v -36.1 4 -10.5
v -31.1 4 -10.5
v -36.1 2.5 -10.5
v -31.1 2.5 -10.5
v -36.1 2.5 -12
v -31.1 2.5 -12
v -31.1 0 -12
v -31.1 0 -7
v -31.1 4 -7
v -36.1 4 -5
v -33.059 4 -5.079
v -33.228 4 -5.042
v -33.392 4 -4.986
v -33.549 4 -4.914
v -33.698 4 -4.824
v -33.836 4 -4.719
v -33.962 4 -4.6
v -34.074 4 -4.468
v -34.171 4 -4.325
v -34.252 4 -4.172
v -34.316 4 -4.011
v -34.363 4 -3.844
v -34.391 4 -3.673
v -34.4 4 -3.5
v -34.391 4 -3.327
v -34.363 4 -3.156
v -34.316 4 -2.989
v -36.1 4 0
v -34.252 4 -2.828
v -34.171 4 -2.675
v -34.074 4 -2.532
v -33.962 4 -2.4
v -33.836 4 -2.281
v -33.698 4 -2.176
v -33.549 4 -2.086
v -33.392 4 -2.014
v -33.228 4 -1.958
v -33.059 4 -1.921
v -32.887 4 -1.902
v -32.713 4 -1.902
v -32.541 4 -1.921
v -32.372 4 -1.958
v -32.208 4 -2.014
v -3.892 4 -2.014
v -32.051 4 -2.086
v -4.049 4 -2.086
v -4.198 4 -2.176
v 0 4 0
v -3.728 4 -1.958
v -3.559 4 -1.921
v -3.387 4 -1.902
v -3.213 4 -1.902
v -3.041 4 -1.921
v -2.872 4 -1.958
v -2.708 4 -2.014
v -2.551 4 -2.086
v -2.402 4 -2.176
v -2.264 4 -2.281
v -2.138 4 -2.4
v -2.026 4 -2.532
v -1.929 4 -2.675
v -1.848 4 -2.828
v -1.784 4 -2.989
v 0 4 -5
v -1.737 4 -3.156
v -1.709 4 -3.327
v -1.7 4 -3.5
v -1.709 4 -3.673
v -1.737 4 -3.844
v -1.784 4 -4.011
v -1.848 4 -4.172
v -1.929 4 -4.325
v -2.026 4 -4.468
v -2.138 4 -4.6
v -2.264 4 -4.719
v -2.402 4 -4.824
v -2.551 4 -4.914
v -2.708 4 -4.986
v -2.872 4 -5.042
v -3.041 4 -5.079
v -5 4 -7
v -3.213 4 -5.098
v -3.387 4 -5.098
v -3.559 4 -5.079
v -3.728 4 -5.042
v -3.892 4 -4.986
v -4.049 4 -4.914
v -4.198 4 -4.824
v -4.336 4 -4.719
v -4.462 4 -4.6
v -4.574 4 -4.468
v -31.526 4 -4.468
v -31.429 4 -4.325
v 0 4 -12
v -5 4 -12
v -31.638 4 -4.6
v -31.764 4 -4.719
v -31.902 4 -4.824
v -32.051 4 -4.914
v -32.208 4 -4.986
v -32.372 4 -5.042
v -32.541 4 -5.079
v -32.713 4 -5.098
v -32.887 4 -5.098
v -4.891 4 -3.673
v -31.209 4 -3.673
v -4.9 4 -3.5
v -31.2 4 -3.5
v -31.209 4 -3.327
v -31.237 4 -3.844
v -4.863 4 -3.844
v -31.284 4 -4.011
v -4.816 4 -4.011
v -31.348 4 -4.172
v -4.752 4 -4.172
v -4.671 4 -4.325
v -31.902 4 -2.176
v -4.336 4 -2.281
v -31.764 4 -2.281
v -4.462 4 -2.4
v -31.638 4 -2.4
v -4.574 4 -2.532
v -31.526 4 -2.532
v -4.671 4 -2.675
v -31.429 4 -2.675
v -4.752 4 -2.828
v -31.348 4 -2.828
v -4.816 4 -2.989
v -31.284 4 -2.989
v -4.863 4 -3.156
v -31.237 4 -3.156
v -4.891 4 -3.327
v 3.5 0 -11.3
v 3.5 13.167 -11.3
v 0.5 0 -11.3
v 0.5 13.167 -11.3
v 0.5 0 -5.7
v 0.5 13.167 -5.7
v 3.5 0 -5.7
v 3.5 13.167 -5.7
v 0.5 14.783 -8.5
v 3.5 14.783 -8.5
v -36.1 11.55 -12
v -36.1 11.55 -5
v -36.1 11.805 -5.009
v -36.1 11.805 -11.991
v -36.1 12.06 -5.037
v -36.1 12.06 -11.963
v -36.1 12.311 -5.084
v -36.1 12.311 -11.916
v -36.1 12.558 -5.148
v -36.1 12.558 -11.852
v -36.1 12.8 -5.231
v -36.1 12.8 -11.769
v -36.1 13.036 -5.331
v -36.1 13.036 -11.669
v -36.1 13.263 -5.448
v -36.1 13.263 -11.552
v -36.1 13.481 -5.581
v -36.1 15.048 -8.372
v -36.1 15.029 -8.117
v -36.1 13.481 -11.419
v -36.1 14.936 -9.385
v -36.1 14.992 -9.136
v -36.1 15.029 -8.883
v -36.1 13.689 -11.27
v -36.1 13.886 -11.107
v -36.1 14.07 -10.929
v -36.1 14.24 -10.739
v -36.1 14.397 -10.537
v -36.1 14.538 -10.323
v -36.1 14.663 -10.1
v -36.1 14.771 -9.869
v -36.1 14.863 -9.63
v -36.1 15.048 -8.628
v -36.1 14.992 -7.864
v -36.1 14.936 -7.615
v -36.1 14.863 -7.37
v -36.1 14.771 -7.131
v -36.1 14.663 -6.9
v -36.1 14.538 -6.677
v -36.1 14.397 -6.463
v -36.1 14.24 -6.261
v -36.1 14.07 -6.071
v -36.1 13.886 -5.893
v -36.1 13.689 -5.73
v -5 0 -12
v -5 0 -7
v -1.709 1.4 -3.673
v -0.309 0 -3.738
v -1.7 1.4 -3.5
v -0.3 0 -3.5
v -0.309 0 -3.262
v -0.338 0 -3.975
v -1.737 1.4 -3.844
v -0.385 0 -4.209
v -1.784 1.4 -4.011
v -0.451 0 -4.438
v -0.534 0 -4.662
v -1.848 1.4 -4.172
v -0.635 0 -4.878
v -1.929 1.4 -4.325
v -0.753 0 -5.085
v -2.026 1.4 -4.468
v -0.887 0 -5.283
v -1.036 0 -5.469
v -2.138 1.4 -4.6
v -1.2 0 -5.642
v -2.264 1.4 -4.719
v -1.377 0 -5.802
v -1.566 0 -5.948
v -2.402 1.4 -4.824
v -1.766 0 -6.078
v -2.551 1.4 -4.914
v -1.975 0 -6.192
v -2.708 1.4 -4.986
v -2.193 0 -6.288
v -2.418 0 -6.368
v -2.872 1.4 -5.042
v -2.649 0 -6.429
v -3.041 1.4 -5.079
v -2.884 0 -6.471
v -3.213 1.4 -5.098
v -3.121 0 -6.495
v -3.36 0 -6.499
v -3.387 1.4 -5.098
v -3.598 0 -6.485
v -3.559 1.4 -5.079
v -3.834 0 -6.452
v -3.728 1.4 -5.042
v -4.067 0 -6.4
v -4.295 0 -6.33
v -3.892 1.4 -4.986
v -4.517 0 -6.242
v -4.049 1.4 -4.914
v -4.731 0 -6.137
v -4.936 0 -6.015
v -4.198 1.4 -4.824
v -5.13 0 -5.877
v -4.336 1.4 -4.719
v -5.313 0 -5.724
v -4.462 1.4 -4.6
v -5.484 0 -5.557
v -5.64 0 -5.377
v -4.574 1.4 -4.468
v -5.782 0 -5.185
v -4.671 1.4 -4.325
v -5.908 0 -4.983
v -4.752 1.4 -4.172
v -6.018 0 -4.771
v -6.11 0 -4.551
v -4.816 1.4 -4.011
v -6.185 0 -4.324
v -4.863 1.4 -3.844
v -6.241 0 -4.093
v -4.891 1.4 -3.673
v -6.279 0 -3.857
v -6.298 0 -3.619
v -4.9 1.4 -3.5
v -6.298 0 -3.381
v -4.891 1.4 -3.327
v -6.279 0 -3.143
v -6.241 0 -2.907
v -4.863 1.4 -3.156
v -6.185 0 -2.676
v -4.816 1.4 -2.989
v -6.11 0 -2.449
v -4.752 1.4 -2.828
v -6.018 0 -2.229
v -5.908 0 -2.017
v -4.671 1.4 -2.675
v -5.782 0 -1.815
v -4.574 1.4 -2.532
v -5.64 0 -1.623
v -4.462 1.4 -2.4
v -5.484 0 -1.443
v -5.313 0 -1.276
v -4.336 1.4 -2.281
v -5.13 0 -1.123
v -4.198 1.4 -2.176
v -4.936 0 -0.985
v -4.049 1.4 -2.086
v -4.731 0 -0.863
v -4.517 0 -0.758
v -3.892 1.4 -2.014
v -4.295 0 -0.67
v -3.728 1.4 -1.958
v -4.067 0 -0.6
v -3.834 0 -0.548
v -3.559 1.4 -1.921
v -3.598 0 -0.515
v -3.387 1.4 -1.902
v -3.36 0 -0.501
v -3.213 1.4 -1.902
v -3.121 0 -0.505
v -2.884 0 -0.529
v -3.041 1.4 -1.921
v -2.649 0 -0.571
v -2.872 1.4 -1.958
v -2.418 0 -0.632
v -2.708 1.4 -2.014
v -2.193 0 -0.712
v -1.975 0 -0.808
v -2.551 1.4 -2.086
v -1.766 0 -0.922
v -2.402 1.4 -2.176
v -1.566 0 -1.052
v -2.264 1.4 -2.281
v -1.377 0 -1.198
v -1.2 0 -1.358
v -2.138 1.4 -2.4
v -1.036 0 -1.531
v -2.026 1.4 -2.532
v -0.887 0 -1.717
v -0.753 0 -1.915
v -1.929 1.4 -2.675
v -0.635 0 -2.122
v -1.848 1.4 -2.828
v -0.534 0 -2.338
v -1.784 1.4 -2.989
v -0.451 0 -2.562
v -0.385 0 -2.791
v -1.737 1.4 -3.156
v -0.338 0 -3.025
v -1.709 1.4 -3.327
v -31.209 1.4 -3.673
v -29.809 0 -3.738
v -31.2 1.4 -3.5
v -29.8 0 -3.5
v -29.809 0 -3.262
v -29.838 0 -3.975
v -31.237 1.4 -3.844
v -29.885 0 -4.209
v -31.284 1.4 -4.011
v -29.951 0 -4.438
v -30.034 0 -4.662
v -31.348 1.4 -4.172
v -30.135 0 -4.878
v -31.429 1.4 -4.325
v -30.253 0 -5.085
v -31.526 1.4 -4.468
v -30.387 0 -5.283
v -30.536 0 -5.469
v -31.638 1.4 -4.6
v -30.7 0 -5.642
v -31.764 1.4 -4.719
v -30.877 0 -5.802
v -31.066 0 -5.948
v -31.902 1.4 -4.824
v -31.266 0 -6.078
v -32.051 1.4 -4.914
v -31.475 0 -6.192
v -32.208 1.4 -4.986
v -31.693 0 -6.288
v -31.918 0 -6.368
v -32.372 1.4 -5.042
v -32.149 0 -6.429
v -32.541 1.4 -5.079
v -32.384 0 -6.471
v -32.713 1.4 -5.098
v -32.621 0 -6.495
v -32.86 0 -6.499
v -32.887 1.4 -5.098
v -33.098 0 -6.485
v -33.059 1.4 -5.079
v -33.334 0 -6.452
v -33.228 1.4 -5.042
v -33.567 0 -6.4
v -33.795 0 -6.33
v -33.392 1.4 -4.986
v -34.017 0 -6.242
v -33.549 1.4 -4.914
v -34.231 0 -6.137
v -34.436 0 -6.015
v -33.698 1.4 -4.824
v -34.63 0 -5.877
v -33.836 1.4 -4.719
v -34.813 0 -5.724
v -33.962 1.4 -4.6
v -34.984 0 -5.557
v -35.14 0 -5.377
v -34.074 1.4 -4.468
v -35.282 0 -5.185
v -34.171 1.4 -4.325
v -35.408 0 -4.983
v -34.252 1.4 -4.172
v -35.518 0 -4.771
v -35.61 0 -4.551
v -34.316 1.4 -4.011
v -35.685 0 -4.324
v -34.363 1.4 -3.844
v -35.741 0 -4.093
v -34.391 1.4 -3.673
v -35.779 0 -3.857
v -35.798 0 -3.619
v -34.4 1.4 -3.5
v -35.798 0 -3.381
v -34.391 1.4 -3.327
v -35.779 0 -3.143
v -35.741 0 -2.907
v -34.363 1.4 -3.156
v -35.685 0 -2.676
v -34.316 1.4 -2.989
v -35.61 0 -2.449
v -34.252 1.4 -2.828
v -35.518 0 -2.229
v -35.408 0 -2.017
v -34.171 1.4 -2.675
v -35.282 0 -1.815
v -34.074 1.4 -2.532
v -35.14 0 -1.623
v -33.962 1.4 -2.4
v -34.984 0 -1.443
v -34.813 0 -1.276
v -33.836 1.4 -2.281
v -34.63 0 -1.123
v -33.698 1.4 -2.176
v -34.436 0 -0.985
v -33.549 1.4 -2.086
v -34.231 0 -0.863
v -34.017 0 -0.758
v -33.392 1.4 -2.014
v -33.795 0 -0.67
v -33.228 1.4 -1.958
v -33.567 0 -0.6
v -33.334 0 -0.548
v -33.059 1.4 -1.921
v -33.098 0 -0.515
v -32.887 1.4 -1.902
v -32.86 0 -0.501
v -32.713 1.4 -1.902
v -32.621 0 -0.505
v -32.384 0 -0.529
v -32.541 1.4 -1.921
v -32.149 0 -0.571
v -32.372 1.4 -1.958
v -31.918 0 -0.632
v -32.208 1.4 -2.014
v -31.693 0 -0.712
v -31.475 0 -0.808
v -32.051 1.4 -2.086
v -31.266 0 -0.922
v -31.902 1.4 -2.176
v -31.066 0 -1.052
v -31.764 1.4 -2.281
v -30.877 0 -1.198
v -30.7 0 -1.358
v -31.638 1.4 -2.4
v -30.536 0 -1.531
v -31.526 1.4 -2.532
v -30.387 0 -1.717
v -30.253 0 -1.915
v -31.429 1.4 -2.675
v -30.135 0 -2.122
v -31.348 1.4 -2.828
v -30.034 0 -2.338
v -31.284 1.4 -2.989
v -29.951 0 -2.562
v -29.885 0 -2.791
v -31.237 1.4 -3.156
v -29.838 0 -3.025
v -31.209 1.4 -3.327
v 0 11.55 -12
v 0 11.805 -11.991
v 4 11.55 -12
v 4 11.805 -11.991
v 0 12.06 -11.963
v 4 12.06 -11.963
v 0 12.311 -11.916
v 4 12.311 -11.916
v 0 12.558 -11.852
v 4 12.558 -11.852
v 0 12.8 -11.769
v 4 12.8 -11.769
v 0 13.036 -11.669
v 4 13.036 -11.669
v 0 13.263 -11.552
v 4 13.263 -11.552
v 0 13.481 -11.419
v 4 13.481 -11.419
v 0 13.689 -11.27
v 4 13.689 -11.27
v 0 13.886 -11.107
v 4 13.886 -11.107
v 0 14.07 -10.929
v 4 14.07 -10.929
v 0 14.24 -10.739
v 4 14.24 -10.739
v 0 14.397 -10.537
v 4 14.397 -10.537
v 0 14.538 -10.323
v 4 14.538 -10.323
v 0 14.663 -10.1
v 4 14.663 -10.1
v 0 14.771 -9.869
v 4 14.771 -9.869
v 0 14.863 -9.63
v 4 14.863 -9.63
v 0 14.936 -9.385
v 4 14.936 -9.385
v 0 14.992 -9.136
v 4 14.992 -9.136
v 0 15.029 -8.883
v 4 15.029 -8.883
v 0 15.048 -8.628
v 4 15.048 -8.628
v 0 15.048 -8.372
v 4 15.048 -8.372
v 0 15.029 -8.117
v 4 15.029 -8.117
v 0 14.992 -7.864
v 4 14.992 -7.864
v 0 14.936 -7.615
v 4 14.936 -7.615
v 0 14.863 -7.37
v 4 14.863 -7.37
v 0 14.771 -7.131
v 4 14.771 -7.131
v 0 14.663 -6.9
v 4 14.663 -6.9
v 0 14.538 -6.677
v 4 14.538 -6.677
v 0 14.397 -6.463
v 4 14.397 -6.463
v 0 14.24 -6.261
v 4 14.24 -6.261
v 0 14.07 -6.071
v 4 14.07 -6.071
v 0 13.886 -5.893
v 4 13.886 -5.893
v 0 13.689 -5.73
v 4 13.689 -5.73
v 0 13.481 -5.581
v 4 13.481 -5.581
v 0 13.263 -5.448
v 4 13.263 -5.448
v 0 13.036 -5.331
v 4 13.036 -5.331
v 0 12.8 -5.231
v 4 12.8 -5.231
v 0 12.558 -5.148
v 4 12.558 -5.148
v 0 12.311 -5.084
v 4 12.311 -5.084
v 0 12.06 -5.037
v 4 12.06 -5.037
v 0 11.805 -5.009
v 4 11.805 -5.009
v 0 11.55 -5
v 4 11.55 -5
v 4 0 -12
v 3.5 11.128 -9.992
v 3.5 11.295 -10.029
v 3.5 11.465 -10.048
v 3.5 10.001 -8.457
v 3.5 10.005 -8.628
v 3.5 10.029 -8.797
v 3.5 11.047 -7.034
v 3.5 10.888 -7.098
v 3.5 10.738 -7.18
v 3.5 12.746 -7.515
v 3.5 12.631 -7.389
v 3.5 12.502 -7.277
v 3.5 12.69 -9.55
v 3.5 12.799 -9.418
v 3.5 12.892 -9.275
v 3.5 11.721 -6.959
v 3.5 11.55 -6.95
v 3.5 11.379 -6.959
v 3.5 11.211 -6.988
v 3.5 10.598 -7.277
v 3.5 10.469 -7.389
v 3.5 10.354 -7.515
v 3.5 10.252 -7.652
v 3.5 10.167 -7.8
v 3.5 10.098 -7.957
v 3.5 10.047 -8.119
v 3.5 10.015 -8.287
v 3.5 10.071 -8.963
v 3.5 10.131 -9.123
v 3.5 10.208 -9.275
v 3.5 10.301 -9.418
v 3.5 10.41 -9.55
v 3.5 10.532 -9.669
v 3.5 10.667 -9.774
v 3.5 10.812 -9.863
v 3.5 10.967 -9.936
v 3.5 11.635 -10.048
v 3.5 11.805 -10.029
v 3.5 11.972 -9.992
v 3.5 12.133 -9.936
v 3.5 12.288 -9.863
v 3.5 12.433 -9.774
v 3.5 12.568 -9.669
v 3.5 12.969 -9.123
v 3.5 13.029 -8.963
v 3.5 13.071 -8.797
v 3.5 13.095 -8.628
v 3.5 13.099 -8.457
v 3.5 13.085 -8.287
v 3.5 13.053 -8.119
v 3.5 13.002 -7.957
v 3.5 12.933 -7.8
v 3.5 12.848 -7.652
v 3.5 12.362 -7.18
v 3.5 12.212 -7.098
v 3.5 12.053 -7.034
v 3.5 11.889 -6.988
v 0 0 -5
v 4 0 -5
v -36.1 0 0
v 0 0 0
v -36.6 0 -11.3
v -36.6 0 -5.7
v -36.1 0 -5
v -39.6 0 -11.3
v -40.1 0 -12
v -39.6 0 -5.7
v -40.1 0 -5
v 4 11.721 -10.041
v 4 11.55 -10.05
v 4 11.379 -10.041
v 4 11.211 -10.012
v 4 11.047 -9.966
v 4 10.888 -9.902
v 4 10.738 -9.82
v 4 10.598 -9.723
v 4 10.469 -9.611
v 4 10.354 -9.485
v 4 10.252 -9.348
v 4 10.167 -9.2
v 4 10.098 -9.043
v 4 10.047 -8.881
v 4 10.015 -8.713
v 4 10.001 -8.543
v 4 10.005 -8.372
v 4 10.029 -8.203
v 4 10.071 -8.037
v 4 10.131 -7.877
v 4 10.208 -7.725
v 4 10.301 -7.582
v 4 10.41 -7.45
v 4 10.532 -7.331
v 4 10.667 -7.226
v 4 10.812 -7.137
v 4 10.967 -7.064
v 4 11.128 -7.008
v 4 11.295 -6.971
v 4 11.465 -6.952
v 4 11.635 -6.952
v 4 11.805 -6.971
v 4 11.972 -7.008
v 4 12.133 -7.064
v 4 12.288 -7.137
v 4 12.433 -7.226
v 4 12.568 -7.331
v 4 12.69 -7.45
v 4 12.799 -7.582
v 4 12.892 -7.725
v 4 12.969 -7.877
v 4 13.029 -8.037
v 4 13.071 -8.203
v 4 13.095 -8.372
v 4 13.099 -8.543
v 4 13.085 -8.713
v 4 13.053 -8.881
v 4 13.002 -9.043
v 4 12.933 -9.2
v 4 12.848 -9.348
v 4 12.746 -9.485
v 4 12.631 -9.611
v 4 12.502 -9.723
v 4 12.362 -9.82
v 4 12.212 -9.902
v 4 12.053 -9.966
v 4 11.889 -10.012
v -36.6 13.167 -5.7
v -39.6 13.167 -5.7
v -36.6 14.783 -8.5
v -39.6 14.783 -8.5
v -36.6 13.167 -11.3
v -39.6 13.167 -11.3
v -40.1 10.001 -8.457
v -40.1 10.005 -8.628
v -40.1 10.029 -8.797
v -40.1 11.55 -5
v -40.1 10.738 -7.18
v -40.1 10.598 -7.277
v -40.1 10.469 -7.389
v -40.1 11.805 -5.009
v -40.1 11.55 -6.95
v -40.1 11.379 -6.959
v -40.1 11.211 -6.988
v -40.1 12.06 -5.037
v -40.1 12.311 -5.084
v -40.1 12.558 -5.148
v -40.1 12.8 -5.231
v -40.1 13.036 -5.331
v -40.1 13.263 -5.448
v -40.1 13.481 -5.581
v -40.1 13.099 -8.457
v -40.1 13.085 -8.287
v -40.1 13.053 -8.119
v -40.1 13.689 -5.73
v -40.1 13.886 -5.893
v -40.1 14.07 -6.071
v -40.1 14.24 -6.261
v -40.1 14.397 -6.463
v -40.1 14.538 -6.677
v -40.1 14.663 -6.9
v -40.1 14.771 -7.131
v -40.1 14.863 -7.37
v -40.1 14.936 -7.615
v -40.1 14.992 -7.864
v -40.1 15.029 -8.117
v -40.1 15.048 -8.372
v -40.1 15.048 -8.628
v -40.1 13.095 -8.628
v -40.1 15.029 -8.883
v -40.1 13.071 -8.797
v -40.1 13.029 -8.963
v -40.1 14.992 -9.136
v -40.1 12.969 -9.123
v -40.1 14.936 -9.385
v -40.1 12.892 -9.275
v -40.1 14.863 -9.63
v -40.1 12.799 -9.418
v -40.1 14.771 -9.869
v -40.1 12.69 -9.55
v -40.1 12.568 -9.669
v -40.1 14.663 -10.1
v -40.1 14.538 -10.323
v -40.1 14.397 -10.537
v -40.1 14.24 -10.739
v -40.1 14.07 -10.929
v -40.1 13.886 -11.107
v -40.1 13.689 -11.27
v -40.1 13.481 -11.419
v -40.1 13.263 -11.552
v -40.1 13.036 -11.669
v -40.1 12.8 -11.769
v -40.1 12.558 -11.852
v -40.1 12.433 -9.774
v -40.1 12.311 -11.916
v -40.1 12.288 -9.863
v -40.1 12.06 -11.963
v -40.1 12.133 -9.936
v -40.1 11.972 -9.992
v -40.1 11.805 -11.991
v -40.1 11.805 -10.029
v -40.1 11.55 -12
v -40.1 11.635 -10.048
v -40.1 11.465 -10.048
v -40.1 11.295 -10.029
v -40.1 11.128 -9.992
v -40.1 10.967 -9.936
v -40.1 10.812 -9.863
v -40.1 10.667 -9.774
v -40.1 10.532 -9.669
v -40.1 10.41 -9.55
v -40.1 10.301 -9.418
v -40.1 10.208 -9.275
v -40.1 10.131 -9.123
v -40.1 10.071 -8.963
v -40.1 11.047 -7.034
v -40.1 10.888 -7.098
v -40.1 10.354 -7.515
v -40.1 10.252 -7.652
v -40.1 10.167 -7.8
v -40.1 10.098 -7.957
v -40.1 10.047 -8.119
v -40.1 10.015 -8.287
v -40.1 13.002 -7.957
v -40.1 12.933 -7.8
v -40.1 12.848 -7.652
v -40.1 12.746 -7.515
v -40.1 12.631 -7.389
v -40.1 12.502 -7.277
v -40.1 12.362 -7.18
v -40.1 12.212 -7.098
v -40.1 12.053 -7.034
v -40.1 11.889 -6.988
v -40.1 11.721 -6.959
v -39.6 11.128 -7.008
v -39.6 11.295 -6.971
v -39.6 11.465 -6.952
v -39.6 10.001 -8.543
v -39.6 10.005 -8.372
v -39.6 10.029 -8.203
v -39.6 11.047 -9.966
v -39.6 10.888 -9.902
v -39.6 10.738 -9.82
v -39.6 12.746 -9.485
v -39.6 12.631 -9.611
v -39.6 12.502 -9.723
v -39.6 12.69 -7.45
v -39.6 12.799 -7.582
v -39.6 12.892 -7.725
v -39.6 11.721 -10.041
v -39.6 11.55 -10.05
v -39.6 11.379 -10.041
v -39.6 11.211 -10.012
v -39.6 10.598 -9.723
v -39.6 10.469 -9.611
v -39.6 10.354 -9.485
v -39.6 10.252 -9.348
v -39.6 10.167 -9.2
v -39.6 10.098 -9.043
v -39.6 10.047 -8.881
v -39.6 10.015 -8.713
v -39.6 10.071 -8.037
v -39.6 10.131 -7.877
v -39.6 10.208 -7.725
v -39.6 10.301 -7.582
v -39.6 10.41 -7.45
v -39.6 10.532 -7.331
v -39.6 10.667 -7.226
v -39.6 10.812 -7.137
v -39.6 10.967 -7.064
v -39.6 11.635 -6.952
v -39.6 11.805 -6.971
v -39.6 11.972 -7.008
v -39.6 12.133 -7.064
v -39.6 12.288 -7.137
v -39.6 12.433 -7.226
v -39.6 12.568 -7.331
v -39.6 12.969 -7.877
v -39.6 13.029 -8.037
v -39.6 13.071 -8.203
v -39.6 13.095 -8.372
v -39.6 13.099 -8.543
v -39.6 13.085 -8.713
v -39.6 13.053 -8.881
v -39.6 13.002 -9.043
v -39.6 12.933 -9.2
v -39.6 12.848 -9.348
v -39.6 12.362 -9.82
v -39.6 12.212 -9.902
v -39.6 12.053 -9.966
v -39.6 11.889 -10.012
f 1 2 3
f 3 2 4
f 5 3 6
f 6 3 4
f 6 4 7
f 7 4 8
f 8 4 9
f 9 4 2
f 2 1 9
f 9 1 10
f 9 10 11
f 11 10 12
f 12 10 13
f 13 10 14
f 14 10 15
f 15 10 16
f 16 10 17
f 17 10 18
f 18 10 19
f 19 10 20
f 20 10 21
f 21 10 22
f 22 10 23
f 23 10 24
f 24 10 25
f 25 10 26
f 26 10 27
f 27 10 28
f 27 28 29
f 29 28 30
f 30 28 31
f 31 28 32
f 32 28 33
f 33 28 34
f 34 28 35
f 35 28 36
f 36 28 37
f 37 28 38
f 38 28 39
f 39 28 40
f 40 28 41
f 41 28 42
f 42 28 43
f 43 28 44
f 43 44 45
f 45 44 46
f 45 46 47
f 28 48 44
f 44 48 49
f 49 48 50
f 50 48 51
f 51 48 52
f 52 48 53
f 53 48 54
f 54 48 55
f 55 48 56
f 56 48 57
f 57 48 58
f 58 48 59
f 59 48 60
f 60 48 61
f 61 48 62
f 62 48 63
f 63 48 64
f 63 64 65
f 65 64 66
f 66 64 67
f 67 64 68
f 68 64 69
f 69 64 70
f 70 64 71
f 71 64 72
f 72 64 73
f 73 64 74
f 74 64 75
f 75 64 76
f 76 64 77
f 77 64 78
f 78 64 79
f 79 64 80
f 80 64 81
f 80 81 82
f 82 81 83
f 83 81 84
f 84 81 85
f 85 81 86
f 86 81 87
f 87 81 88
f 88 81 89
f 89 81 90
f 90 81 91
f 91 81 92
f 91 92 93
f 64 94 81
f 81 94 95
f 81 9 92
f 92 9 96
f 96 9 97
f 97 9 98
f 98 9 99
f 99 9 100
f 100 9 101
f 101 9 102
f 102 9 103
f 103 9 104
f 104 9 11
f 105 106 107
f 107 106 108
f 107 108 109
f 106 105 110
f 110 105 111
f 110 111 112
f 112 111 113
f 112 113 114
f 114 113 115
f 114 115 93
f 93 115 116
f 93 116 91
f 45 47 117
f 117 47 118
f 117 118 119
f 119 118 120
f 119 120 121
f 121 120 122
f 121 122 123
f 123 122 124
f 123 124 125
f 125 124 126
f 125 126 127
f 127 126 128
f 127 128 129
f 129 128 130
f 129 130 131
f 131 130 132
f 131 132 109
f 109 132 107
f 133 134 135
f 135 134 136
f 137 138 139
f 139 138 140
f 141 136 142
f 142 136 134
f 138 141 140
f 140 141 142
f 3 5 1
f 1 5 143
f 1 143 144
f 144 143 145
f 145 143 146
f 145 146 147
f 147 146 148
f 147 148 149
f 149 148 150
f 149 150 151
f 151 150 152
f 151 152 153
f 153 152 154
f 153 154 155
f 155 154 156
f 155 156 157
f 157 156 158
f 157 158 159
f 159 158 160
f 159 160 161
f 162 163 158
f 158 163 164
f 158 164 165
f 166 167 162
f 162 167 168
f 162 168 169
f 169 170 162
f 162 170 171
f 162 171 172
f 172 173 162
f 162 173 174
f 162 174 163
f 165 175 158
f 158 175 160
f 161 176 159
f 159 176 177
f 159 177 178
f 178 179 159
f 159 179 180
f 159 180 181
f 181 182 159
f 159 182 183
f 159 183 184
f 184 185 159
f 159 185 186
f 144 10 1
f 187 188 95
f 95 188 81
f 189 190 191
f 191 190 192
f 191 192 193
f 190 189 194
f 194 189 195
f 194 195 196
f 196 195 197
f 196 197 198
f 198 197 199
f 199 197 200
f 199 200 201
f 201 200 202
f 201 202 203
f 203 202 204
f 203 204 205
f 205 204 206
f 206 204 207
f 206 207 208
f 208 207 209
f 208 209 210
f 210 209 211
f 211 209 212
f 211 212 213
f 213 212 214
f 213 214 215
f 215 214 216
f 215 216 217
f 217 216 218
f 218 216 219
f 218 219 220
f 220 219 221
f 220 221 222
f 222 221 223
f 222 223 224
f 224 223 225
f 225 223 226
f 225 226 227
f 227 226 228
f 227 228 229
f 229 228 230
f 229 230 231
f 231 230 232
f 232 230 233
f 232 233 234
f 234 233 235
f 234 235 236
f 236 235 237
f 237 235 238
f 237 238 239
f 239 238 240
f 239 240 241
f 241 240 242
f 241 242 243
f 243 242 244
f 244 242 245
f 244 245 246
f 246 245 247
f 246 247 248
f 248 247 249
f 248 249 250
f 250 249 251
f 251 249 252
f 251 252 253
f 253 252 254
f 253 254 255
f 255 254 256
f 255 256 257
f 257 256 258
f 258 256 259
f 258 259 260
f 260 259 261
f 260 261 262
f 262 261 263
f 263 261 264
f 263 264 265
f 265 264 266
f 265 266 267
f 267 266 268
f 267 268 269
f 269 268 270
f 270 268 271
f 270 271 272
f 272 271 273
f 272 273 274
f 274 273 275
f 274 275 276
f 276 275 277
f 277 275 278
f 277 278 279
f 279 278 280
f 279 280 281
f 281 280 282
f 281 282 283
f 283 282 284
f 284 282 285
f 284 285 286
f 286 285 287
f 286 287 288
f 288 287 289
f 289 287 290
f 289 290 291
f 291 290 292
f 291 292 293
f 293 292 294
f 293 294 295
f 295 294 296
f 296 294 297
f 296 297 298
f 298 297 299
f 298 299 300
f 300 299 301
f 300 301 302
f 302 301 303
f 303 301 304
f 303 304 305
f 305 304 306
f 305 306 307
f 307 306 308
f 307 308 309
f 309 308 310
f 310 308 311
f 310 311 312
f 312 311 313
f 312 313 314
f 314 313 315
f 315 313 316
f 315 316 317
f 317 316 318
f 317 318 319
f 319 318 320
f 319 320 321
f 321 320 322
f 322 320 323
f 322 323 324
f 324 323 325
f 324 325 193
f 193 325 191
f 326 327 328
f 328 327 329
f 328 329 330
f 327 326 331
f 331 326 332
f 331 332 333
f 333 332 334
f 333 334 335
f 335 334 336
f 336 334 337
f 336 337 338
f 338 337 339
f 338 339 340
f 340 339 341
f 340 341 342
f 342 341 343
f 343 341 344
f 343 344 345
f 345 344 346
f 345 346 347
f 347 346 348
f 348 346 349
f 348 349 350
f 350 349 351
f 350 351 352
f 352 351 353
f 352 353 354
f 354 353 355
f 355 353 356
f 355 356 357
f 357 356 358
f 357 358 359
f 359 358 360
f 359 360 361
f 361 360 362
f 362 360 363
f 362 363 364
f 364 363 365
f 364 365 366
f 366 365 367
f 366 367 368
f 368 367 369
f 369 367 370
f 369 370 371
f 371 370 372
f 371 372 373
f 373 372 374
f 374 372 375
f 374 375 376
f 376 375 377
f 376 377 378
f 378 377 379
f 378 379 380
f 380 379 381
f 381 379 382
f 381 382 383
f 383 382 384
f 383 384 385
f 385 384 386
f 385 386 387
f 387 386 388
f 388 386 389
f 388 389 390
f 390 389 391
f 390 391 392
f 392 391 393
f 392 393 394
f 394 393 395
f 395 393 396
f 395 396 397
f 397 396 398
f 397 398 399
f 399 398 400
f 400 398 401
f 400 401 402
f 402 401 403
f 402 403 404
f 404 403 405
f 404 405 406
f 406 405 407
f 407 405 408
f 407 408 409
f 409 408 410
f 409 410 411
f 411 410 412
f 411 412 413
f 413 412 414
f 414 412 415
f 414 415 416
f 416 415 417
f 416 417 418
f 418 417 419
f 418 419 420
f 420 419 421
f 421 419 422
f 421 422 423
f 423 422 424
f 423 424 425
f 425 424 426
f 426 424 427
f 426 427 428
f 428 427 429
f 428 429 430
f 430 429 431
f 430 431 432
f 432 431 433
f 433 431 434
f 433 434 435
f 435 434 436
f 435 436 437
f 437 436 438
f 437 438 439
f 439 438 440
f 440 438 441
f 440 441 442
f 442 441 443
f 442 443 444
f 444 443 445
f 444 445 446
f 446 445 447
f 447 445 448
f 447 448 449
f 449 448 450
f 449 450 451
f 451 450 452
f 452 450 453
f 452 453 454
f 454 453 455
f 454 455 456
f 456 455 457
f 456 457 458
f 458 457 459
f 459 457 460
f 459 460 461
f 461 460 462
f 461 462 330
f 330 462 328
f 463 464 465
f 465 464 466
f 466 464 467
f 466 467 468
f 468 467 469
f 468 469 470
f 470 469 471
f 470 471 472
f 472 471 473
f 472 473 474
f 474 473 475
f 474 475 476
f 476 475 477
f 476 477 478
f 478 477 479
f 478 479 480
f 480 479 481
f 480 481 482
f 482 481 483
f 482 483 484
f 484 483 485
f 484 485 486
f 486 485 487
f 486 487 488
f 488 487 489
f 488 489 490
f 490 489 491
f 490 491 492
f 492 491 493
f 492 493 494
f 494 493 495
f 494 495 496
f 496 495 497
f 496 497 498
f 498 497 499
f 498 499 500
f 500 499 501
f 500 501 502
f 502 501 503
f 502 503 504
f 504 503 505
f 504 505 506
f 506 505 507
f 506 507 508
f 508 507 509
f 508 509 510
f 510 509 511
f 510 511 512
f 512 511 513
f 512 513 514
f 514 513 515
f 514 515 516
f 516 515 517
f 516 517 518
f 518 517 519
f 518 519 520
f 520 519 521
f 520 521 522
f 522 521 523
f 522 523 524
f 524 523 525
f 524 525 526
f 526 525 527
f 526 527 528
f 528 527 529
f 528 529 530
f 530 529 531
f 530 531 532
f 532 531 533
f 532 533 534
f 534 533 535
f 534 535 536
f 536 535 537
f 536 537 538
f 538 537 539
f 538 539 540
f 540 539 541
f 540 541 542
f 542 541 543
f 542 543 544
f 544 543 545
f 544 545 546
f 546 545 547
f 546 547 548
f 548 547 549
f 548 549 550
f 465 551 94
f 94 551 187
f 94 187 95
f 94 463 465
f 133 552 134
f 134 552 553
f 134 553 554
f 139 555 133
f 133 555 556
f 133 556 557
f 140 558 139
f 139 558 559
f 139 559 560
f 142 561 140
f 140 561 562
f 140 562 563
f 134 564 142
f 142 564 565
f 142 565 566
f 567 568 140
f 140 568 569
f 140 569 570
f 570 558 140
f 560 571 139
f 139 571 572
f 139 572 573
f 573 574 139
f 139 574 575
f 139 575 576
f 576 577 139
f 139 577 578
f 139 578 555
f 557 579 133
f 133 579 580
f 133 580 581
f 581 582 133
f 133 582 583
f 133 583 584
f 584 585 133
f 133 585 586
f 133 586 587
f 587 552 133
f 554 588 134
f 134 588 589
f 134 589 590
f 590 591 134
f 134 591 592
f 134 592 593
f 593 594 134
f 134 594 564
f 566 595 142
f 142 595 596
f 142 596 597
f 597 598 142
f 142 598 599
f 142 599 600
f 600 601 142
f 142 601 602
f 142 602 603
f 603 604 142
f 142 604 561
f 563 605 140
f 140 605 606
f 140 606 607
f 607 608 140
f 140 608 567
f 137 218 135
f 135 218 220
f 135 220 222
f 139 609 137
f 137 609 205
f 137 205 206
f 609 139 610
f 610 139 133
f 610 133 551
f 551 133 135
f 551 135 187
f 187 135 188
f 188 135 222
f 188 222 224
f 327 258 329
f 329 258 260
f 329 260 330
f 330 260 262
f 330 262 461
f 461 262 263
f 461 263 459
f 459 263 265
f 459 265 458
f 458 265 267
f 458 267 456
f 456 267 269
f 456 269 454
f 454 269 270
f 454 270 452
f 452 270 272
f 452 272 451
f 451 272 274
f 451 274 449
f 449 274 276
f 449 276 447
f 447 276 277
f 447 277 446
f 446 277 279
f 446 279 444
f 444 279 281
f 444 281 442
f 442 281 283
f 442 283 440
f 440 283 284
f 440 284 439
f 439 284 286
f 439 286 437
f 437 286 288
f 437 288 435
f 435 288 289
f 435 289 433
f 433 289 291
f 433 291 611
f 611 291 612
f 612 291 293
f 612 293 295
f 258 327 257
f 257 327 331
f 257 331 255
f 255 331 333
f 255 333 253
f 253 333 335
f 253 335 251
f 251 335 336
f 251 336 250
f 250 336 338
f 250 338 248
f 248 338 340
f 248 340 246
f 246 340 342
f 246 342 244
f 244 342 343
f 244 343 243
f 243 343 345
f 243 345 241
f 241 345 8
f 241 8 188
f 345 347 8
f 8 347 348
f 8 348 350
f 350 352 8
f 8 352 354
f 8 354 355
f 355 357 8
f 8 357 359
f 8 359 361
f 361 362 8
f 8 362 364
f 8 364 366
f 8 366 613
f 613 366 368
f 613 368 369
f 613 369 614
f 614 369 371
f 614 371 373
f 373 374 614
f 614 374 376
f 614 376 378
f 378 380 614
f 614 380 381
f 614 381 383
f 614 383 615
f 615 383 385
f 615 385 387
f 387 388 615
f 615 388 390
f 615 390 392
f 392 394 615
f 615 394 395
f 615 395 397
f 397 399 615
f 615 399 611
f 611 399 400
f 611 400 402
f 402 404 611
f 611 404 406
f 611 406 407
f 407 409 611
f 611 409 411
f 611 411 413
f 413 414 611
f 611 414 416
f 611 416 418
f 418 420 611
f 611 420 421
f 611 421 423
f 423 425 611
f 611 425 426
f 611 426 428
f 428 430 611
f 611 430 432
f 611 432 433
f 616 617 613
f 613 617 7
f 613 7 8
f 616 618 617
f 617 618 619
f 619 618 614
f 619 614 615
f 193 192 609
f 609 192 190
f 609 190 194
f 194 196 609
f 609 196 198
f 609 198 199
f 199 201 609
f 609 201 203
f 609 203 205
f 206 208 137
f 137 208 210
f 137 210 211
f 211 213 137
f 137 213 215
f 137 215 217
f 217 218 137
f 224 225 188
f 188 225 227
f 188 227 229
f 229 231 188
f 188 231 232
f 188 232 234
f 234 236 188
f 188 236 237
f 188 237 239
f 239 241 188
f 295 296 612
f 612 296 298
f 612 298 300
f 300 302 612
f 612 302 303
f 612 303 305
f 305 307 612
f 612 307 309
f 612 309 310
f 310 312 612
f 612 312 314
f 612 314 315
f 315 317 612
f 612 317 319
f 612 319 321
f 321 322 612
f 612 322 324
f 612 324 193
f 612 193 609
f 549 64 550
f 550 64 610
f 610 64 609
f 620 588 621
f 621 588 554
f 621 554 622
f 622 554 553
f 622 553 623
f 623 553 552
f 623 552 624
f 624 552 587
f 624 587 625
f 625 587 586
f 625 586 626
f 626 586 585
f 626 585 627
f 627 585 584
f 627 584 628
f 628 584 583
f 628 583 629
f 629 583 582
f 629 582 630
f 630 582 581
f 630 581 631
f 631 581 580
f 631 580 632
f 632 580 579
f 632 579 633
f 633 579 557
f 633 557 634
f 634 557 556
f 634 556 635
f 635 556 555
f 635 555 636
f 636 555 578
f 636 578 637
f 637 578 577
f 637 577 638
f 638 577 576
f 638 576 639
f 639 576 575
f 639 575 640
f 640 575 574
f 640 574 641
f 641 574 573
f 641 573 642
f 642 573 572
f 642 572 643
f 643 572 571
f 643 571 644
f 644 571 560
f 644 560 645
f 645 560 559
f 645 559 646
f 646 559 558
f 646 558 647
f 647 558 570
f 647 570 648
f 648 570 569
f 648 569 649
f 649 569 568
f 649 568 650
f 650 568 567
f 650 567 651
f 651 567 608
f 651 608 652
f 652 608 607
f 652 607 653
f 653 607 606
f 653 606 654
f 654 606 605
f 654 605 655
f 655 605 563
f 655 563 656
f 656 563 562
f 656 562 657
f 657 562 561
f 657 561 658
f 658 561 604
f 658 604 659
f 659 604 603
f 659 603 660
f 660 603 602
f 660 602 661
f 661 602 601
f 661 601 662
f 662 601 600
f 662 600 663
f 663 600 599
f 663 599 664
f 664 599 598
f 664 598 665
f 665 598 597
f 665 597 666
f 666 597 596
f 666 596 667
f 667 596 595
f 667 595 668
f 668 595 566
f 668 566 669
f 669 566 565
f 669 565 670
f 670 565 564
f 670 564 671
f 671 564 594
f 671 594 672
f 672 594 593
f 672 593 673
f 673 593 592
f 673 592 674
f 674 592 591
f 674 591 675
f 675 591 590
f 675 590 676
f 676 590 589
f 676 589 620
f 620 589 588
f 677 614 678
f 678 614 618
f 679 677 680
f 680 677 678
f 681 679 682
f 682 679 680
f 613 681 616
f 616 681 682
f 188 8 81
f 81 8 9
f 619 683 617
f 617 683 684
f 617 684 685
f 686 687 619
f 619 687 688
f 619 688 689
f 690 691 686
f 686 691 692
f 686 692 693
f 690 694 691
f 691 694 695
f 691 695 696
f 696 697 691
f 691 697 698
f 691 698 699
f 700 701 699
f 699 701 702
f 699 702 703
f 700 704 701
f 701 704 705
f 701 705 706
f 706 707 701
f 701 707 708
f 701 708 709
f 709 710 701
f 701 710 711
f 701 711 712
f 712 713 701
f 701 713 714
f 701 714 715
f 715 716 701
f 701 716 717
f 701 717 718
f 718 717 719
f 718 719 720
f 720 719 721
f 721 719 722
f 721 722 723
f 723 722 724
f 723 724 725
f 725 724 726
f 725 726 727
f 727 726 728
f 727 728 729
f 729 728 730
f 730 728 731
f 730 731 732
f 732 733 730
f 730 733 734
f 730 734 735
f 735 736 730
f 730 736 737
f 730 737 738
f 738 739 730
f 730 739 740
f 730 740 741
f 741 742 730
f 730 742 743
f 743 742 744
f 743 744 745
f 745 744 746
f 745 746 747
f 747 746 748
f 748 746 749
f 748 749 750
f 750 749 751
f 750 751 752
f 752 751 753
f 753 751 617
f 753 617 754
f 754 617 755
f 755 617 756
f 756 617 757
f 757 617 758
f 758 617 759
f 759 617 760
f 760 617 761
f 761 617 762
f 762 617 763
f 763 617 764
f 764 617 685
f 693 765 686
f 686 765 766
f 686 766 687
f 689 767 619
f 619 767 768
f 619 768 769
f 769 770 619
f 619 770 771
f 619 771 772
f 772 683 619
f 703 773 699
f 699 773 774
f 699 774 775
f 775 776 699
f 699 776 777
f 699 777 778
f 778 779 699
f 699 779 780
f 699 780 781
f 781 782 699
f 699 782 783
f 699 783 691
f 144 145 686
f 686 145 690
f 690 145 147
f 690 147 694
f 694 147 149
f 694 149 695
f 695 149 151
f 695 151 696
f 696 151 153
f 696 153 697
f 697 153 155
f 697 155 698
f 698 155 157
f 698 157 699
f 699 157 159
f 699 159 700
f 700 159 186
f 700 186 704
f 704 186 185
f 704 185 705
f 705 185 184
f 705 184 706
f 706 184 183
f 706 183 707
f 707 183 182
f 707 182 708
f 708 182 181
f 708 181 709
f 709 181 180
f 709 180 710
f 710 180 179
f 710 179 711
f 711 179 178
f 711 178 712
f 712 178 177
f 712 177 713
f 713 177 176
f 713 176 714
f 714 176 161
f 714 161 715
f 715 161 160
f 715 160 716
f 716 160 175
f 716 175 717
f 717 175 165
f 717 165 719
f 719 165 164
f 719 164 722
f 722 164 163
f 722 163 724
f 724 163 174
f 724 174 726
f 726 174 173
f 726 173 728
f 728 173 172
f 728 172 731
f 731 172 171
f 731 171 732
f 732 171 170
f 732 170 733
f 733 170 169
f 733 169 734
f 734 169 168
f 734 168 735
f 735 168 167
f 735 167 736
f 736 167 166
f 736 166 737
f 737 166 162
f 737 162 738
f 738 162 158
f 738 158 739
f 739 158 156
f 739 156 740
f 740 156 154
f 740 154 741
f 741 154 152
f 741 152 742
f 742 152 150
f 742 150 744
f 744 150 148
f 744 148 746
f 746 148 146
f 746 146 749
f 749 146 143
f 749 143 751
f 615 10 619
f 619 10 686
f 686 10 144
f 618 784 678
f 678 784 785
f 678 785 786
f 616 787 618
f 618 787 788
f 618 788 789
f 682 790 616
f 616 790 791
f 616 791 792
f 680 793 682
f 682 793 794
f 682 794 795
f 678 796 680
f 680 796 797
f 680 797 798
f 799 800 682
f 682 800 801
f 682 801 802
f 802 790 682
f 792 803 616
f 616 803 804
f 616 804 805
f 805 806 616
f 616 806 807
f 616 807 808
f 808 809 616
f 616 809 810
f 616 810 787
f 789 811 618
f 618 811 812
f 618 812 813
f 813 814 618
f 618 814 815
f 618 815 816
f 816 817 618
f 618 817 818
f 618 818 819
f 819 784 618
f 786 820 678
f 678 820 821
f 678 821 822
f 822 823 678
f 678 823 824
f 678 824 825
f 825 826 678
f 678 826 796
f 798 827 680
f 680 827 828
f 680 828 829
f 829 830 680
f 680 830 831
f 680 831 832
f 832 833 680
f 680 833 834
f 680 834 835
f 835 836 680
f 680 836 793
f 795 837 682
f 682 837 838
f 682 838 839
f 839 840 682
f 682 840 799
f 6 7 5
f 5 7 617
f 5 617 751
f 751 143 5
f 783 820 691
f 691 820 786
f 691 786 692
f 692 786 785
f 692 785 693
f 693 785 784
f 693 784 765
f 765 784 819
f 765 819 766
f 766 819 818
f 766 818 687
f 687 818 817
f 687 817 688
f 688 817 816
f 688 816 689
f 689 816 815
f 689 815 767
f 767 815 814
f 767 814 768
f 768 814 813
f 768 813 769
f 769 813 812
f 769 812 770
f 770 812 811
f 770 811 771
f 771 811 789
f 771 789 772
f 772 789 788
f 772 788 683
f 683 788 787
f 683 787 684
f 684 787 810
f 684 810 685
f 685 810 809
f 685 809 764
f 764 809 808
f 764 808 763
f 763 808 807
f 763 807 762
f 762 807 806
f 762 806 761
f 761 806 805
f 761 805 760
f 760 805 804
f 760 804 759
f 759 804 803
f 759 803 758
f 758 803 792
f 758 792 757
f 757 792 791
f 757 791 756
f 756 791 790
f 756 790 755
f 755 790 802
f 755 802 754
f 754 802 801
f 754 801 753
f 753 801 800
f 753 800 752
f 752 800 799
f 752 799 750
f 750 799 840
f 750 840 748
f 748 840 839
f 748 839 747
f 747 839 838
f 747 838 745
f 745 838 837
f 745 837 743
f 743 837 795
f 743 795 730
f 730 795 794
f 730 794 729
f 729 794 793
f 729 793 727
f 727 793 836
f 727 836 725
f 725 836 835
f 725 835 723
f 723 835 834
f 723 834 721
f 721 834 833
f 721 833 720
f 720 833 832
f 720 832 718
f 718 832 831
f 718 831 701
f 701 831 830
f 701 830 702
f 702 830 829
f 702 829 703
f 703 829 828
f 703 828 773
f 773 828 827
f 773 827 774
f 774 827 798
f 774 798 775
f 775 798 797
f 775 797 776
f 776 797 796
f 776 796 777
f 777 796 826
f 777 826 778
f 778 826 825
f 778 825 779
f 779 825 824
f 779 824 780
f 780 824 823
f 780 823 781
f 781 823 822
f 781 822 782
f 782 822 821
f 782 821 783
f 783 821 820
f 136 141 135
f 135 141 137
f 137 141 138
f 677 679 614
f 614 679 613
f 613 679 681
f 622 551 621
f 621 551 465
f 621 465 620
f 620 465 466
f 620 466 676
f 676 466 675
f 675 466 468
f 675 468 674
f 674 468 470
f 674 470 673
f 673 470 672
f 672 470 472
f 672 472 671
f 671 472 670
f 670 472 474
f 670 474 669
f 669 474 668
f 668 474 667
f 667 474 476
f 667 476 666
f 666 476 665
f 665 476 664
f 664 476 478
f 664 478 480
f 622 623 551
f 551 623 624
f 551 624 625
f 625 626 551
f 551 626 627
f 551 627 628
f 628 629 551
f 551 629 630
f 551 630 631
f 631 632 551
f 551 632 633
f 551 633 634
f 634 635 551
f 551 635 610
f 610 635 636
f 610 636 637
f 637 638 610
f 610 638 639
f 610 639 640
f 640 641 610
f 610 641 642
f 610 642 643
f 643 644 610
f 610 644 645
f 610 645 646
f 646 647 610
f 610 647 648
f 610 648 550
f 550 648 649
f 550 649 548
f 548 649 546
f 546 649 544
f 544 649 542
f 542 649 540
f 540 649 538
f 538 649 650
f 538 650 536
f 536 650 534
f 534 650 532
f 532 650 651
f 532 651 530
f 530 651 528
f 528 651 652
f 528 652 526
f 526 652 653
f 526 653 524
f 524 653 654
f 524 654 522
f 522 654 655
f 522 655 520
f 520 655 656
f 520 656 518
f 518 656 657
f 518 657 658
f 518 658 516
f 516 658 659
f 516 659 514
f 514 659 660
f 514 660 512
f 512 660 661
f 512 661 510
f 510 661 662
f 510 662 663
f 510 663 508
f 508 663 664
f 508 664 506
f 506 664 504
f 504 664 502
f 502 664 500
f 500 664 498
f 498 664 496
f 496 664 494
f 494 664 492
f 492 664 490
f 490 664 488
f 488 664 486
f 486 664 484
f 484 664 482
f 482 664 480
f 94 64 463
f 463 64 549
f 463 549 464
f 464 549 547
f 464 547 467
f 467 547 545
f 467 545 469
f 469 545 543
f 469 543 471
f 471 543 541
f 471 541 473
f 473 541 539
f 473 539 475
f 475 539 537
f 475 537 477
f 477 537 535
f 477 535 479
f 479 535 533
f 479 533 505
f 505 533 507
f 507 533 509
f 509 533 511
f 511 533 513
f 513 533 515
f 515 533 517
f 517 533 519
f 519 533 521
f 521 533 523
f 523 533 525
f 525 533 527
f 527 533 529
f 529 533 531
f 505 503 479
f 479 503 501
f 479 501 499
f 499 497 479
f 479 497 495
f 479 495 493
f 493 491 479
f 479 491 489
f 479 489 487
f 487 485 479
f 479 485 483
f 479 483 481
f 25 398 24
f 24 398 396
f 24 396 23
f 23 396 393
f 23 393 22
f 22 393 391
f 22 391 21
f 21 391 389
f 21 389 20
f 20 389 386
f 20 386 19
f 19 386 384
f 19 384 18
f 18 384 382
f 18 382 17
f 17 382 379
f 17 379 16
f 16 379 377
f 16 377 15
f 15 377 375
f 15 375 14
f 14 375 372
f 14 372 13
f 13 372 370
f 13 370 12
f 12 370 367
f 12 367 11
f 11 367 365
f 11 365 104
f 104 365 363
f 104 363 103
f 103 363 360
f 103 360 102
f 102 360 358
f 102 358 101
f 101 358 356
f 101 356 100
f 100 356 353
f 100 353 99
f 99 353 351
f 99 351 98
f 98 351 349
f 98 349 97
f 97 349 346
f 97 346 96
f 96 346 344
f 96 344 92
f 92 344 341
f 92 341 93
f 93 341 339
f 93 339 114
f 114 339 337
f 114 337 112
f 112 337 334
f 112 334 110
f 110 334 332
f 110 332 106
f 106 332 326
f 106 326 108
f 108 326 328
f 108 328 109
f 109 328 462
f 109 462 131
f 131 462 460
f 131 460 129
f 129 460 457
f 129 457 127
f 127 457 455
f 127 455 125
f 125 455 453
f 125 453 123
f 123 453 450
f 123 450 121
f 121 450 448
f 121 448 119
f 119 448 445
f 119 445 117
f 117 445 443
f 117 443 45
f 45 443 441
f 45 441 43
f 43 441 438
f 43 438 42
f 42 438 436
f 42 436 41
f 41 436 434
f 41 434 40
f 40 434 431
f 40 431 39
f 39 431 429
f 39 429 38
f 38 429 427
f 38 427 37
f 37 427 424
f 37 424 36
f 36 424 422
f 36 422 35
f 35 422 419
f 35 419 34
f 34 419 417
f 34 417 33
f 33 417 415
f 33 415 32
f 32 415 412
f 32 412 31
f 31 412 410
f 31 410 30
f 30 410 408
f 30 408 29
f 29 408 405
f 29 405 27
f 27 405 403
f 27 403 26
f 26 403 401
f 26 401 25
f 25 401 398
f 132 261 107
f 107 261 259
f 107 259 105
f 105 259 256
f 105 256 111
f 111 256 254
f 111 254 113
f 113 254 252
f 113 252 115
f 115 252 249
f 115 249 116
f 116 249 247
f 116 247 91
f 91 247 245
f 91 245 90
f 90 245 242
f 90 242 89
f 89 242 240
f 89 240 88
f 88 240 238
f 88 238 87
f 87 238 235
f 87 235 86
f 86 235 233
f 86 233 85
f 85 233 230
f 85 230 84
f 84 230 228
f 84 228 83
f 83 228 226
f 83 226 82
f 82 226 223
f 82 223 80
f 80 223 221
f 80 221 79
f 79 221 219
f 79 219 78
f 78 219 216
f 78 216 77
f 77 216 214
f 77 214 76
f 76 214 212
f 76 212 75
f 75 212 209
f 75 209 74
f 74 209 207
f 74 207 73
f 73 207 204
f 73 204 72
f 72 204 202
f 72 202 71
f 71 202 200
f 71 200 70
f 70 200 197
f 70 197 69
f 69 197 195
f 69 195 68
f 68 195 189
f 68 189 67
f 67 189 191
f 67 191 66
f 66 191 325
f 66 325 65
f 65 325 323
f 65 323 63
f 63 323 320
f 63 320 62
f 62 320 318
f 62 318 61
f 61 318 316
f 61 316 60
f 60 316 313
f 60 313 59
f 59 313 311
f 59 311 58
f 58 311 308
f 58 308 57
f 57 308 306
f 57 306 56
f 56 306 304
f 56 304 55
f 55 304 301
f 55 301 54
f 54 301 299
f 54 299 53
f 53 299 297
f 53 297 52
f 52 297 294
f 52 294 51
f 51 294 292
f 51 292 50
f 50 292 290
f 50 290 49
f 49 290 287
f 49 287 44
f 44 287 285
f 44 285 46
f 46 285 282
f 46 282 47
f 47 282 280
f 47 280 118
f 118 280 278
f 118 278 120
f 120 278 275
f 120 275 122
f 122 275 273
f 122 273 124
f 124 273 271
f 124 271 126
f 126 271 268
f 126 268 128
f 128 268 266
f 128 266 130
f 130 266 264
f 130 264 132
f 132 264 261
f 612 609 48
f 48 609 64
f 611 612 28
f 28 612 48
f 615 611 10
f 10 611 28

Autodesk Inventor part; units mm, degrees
ref_plane "YZ Plane" through (0, 0, 0) normal (1, 0, 0) x (0, 1, 0)
ref_plane "XZ Plane" through (0, 0, 0) normal (0, 1, 0) x (-1, 0, 0)
ref_plane "XY Plane" through (0, 0, 0) normal (0, 0, 1) x (1, 0, 0)
sketch "Эскиз1" plane through (0, 0, 0) normal (0, 1, 0) x (-1, 0, 0)
  line L0 (0, 0) -> (36.1, 0)
  line L1 (36.1, 0) -> (36.1, -7)
  line L2 (36.1, -7) -> (0, -7)
  line L3 (0, -7) -> (0, 0)
  line L4 (36.1, -7) -> (31.1, -7)
  line L5 (31.1, -7) -> (31.1, -12)
  line L6 (31.1, -12) -> (36.1, -12)
  line L7 (36.1, -12) -> (36.1, -7)
  line L8 (36.1, -12) -> (40.1, -12)
  line L9 (40.1, -12) -> (40.1, -5)
  line L10 (40.1, -5) -> (36.1, -5)
  line L11 (36.1, -5) -> (36.1, -12)
  line L12 (18.05, 0) -> (18.05, -7) construction
  line L13 (0, -7) -> (5, -7)
  line L14 (5, -7) -> (5, -12)
  line L15 (5, -12) -> (0, -12)
  line L16 (0, -12) -> (0, -7)
  line L17 (0, -12) -> (-4, -12)
  line L18 (-4, -12) -> (-4, -5)
  line L19 (-4, -5) -> (0, -5)
  line L20 (0, -5) -> (0, -12)
  point P0 (31.1, -7)
  point P1 (0, -5)
  point P2 (36.1, -5)
  dimension "d0" = 36.1
  dimension "d1" = 7
  dimension "d12" = 5
  dimension "d13" = 5
  dimension "d14" = 4
  dimension "d15" = 7
extrude "Выдавливание1" add sketch "Эскиз1" along normal blind 4
sketch "Эскиз2" plane through (0, 0, 0) normal (0, -1, 0) x (1, 0, 0)
  line L0 (-36.1, 0) -> (0, 0) construction
  line L1 (-18.05, 0) -> (-18.05, -7) construction
  line L2 (-5, -7) -> (-31.1, -7) construction
  line L3 (-32.8, -3.5) -> (-3.3, -3.5) construction
  point P0 (-35.5, 0)
  point P1 (0, -7)
  point P2 (-35.5, -7)
  point P3 (-18.05, -3.5)
  dimension "d4" = 29.5
hole "Отверстие1" at (-32.8, 0, -3.5) at (-3.3, 0, -3.5) direction (0, 1, 0) diameter 3.2 end through all countersink diameter 6 countersink angle 90
sketch "Эскиз3" plane through (0, 4, 0) normal (0, 1, 0) x (1, 0, 0)
  line L0 (-40.1, 5) -> (-36.1, 5) projected
  line L1 (-36.1, 5) -> (-36.1, 12)
  line L2 (-31.1, 12) -> (-40.1, 12) projected
  line L3 (0, 5) -> (4, 5) projected
  line L4 (0, 5) -> (0, 12)
  line L5 (4, 12) -> (-5, 12) projected
  line L6 (4, 5) -> (4, 12) projected
  line L7 (-40.1, 12) -> (-40.1, 5) projected
  point P0 (0, 0)
extrude "Выдавливание2" add sketch "Эскиз3" along normal blind 11.05
fillet "Сопряжение1" radius 3.5 4 edges at (-38.1, 15.05, -5) (-38.1, 15.05, -12) (2, 15.05, -5) (2, 15.05, -12)
sketch "Эскиз5" plane through (-40.1, 0, -12) normal (-1, 0, 0) x (0, 0, 1)
  arc A0 (7, 11.55) -> (0, 11.55) centre (3.5, 11.55) ccw projected
  arc A1 (7, 11.55) -> (0, 11.55) centre (3.5, 11.55) ccw projected
  point P0 (12, 0)
hole "Отверстие2" at (-40.1, 11.55, -8.5) direction (1, 0, 0) diameter 3.1 depth 3.5
sketch "Эскиз6" plane through (4, 0, -5) normal (1, 0, 0) x (0, 0, -1)
  arc A0 (7, 11.55) -> (0, 11.55) centre (3.5, 11.55) ccw projected
  point P0 (-5, 0)
hole "Отверстие3" at (4, 11.55, -8.5) direction (-1, 0, 0) diameter 3.1 depth 3.5
sketch "Эскиз7" plane through (-40.1, 0, -12) normal (-1, 0, 0) x (0, 0, 1)
  circle A0 centre (3.5, 11.55) radius 1.55 projected
  line L0 (0.7, 13.1666) -> (3.5, 14.7832)
  line L1 (3.5, 14.7832) -> (6.3, 13.1666)
  line L2 (6.3, 13.1666) -> (6.3, 9.9334)
  line L3 (6.3, 9.9334) -> (3.5, 8.3168)
  line L4 (3.5, 8.3168) -> (0.7, 9.9334)
  line L5 (0.7, 9.9334) -> (0.7, 13.1666)
  line L6 (0, 0) -> (0, 11.55) projected
  line L7 (0.7, 9.9334) -> (6.3, 9.9334)
  line L8 (6.3, 9.9334) -> (6.3, 0)
  line L9 (6.3, 0) -> (0.7, 0)
  line L10 (0.7, 0) -> (0.7, 9.9334)
  line L11 (0, 0) -> (7, 0) projected
  point P0 (12, 0)
  point P1 (3.5, 11.55)
  dimension "d33" = 5.6
extrude "Выдавливание3" cut sketch "Эскиз7" along normal blind 3 from surface at -3.5 contours A0 | L0 L1 L2 L7 L5 | L7 L3 L4 | L4 L3 L8 L9 L10
extrude "Выдавливание4" cut sketch "Эскиз7" against normal blind 3 from surface at -40.6 contours A0 | L0 L1 L2 L7 L5 | L7 L3 L4 | L4 L3 L8 L9 L10
sketch "Эскиз8" plane through (0, 4, 0) normal (0, 1, 0) x (1, 0, 0)
  line L0 (-31.1, 7) -> (-31.1, 12) projected
  line L1 (-31.1, 12) -> (-36.1, 12)
  line L2 (-36.1, 12) -> (-36.1, 10.5)
  line L3 (-36.1, 10.5) -> (-31.1, 10.5)
  line L4 (-31.1, 10.5) -> (-31.1, 12)
  line L5 (-36.1, 12) -> (-36.1, 5) projected
  point P0 (0, 0)
  dimension "d38" = 1.5
extrude "Выдавливание5" cut sketch "Эскиз8" against normal blind 1.5
properties part number "Крепление OpenMV"
